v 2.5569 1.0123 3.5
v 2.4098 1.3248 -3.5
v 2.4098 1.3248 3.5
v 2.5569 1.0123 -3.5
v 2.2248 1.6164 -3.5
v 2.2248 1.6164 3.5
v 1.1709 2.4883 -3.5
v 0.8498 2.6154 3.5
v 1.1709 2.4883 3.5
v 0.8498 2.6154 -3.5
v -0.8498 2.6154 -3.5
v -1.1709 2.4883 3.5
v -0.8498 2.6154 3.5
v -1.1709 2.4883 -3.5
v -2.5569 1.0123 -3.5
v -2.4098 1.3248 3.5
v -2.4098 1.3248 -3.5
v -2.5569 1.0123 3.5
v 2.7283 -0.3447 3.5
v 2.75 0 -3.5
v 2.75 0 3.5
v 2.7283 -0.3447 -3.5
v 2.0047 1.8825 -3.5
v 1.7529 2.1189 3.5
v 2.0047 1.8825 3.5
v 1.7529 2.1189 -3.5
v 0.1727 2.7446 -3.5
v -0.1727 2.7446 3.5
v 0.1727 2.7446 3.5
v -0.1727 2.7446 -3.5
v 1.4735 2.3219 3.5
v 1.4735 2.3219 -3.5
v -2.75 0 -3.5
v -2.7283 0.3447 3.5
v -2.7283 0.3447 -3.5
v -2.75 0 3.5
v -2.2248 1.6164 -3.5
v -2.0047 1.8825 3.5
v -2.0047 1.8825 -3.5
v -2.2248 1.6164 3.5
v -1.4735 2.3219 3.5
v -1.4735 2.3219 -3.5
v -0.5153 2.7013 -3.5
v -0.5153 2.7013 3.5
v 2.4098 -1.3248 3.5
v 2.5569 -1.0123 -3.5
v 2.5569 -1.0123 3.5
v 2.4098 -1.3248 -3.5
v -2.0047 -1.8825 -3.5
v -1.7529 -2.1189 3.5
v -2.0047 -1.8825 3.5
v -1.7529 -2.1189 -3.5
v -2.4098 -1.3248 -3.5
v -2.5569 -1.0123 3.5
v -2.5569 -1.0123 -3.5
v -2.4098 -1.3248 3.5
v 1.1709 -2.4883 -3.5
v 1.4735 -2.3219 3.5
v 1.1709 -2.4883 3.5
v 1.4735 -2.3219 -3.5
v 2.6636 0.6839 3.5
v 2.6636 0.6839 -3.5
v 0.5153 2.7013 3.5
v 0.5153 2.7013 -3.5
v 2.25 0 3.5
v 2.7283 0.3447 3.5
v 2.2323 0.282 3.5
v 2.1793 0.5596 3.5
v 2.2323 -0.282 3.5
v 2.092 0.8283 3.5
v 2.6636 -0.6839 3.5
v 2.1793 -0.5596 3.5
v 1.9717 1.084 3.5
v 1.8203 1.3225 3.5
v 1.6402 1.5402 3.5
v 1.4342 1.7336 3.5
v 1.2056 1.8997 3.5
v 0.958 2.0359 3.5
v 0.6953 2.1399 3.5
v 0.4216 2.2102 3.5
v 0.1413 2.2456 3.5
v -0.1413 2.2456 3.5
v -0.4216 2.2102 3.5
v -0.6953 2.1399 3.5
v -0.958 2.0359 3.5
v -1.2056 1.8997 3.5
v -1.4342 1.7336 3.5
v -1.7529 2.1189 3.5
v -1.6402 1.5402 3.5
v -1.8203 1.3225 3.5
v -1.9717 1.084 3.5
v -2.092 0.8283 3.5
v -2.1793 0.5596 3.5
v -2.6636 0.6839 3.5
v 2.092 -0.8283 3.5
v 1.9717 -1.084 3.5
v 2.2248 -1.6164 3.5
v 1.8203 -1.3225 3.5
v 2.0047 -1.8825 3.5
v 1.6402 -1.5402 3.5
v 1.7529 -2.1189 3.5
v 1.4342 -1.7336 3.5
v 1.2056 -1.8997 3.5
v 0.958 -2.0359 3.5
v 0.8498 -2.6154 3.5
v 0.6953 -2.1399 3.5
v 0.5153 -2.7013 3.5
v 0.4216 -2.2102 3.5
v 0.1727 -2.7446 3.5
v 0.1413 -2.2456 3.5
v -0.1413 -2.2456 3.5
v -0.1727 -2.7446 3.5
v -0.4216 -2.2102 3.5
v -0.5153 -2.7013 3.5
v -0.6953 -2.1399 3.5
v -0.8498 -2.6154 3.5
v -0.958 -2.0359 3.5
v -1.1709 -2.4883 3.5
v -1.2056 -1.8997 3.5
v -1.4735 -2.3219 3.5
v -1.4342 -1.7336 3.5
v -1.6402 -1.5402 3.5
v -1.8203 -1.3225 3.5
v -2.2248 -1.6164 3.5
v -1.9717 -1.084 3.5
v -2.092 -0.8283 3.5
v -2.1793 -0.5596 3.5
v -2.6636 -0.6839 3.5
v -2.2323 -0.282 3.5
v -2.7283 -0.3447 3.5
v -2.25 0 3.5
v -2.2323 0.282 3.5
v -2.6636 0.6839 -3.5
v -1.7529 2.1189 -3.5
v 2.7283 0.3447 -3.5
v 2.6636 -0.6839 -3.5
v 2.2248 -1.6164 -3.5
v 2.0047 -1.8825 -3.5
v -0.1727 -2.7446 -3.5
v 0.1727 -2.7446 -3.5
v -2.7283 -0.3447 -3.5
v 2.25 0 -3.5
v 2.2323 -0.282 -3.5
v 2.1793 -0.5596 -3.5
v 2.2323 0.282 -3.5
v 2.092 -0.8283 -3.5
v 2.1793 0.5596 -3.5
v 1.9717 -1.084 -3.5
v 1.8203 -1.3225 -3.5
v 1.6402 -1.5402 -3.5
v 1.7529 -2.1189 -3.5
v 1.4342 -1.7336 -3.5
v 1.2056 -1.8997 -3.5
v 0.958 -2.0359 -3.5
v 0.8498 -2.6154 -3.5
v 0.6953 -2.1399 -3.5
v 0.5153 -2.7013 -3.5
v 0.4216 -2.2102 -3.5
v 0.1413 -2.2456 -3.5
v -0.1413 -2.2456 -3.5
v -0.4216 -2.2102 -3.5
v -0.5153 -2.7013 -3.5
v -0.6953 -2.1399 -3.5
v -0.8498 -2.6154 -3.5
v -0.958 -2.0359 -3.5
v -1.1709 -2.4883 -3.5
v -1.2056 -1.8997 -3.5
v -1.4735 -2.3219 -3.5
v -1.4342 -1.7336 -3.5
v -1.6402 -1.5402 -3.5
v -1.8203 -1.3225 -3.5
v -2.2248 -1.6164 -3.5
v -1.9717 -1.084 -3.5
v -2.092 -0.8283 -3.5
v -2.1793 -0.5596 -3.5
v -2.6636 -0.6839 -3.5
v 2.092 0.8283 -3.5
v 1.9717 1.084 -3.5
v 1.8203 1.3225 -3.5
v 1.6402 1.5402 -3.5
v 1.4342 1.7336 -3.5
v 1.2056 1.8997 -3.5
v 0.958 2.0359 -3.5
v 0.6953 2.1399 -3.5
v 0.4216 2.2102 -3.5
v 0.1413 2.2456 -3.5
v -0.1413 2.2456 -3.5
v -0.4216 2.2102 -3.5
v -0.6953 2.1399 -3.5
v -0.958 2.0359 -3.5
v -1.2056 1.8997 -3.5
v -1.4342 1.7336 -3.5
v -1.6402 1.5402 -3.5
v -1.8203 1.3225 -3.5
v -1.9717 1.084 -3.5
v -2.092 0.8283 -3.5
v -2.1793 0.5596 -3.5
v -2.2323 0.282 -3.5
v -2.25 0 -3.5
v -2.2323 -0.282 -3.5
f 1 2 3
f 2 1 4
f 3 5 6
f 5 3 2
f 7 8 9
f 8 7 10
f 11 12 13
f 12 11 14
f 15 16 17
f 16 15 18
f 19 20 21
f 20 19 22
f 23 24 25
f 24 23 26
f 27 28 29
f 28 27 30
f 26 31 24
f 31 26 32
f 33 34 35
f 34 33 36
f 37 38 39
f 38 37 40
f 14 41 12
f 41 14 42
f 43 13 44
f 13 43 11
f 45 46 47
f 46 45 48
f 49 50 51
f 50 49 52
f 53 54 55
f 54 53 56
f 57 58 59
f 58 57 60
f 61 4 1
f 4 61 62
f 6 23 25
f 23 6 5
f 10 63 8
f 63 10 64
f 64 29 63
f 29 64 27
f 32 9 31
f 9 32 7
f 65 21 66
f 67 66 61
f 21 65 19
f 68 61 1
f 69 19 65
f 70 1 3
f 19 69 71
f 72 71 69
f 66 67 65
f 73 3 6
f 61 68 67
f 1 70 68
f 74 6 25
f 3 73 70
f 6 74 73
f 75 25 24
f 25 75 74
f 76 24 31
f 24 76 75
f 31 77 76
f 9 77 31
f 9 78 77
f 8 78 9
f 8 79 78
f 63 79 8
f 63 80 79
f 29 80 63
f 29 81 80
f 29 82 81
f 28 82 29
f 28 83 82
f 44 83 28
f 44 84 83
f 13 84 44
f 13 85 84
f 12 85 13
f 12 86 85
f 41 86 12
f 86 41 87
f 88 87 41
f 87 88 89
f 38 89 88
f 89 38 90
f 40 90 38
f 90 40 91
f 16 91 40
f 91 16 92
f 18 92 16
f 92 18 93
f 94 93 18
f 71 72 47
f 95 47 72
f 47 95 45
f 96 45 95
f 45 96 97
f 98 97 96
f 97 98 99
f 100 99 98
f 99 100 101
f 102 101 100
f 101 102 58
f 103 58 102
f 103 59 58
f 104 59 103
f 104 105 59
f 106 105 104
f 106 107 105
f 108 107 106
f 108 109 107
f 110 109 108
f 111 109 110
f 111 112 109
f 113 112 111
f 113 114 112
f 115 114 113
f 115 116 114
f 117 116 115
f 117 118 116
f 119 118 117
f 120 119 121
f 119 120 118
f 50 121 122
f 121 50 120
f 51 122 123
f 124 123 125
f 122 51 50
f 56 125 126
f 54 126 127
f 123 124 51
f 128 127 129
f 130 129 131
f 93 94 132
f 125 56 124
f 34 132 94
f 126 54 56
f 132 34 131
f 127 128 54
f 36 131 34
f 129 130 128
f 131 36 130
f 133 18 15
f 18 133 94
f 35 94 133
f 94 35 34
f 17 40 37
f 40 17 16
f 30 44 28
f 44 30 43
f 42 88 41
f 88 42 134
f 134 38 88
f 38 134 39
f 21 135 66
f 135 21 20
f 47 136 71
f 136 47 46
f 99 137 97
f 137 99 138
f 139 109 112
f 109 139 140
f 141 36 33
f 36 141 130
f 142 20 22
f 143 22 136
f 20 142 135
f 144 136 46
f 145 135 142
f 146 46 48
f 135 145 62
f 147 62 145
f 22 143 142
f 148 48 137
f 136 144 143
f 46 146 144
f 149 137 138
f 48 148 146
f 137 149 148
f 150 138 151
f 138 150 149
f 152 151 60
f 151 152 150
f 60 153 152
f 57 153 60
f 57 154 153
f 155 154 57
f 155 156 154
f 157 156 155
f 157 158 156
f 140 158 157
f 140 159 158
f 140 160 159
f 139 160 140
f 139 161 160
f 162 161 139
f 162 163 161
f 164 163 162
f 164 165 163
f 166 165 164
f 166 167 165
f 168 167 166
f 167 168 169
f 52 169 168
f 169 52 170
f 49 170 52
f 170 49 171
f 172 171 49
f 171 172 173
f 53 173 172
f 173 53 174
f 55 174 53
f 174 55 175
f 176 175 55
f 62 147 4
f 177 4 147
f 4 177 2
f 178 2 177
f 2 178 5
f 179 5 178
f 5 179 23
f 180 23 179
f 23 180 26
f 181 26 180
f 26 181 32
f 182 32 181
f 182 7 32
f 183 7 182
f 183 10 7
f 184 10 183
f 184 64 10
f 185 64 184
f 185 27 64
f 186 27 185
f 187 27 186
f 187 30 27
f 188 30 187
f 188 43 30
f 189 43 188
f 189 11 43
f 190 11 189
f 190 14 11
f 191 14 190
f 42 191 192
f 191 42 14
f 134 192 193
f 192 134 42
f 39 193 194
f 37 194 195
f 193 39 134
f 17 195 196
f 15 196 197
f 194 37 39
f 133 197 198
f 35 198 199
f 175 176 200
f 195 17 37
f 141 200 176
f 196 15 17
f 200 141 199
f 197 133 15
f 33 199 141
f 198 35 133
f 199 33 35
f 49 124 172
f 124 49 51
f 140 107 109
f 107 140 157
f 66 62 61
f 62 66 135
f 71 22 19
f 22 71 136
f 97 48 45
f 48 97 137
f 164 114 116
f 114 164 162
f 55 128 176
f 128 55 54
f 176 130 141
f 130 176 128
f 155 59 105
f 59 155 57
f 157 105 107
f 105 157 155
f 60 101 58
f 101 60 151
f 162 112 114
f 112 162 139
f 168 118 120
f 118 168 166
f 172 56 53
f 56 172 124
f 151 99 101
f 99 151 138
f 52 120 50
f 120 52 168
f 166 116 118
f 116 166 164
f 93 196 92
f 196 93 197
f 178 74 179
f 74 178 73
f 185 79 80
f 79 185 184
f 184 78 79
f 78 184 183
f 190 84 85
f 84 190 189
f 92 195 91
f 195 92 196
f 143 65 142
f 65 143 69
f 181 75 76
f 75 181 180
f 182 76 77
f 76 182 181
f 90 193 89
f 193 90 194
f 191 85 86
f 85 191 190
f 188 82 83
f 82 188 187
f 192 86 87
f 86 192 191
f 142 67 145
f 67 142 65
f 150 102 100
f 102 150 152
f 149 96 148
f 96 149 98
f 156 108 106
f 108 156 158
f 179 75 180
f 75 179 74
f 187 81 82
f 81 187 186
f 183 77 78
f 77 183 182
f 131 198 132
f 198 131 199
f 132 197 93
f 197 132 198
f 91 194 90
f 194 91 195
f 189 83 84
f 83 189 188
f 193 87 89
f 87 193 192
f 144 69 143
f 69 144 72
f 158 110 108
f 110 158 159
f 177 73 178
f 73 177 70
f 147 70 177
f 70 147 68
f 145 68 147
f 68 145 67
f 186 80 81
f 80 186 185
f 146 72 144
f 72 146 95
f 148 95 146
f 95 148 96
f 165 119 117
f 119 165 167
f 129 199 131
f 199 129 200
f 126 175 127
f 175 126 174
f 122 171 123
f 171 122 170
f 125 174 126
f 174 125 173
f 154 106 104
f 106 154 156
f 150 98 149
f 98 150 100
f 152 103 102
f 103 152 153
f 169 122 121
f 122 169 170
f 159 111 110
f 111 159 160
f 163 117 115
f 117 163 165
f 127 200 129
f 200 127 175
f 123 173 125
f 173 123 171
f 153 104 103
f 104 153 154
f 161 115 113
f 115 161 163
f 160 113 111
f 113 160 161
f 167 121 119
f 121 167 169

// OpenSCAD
$fn = 50;


difference() {
	union() {
		translate(v = [0, 0, -3.5000000000]) {
			cylinder(h = 7, r = 2.7500000000);
		}
	}
	union() {
		translate(v = [0, 0, -100.0000000000]) {
			cylinder(h = 200, r = 2.2500000000);
		}
	}
}
